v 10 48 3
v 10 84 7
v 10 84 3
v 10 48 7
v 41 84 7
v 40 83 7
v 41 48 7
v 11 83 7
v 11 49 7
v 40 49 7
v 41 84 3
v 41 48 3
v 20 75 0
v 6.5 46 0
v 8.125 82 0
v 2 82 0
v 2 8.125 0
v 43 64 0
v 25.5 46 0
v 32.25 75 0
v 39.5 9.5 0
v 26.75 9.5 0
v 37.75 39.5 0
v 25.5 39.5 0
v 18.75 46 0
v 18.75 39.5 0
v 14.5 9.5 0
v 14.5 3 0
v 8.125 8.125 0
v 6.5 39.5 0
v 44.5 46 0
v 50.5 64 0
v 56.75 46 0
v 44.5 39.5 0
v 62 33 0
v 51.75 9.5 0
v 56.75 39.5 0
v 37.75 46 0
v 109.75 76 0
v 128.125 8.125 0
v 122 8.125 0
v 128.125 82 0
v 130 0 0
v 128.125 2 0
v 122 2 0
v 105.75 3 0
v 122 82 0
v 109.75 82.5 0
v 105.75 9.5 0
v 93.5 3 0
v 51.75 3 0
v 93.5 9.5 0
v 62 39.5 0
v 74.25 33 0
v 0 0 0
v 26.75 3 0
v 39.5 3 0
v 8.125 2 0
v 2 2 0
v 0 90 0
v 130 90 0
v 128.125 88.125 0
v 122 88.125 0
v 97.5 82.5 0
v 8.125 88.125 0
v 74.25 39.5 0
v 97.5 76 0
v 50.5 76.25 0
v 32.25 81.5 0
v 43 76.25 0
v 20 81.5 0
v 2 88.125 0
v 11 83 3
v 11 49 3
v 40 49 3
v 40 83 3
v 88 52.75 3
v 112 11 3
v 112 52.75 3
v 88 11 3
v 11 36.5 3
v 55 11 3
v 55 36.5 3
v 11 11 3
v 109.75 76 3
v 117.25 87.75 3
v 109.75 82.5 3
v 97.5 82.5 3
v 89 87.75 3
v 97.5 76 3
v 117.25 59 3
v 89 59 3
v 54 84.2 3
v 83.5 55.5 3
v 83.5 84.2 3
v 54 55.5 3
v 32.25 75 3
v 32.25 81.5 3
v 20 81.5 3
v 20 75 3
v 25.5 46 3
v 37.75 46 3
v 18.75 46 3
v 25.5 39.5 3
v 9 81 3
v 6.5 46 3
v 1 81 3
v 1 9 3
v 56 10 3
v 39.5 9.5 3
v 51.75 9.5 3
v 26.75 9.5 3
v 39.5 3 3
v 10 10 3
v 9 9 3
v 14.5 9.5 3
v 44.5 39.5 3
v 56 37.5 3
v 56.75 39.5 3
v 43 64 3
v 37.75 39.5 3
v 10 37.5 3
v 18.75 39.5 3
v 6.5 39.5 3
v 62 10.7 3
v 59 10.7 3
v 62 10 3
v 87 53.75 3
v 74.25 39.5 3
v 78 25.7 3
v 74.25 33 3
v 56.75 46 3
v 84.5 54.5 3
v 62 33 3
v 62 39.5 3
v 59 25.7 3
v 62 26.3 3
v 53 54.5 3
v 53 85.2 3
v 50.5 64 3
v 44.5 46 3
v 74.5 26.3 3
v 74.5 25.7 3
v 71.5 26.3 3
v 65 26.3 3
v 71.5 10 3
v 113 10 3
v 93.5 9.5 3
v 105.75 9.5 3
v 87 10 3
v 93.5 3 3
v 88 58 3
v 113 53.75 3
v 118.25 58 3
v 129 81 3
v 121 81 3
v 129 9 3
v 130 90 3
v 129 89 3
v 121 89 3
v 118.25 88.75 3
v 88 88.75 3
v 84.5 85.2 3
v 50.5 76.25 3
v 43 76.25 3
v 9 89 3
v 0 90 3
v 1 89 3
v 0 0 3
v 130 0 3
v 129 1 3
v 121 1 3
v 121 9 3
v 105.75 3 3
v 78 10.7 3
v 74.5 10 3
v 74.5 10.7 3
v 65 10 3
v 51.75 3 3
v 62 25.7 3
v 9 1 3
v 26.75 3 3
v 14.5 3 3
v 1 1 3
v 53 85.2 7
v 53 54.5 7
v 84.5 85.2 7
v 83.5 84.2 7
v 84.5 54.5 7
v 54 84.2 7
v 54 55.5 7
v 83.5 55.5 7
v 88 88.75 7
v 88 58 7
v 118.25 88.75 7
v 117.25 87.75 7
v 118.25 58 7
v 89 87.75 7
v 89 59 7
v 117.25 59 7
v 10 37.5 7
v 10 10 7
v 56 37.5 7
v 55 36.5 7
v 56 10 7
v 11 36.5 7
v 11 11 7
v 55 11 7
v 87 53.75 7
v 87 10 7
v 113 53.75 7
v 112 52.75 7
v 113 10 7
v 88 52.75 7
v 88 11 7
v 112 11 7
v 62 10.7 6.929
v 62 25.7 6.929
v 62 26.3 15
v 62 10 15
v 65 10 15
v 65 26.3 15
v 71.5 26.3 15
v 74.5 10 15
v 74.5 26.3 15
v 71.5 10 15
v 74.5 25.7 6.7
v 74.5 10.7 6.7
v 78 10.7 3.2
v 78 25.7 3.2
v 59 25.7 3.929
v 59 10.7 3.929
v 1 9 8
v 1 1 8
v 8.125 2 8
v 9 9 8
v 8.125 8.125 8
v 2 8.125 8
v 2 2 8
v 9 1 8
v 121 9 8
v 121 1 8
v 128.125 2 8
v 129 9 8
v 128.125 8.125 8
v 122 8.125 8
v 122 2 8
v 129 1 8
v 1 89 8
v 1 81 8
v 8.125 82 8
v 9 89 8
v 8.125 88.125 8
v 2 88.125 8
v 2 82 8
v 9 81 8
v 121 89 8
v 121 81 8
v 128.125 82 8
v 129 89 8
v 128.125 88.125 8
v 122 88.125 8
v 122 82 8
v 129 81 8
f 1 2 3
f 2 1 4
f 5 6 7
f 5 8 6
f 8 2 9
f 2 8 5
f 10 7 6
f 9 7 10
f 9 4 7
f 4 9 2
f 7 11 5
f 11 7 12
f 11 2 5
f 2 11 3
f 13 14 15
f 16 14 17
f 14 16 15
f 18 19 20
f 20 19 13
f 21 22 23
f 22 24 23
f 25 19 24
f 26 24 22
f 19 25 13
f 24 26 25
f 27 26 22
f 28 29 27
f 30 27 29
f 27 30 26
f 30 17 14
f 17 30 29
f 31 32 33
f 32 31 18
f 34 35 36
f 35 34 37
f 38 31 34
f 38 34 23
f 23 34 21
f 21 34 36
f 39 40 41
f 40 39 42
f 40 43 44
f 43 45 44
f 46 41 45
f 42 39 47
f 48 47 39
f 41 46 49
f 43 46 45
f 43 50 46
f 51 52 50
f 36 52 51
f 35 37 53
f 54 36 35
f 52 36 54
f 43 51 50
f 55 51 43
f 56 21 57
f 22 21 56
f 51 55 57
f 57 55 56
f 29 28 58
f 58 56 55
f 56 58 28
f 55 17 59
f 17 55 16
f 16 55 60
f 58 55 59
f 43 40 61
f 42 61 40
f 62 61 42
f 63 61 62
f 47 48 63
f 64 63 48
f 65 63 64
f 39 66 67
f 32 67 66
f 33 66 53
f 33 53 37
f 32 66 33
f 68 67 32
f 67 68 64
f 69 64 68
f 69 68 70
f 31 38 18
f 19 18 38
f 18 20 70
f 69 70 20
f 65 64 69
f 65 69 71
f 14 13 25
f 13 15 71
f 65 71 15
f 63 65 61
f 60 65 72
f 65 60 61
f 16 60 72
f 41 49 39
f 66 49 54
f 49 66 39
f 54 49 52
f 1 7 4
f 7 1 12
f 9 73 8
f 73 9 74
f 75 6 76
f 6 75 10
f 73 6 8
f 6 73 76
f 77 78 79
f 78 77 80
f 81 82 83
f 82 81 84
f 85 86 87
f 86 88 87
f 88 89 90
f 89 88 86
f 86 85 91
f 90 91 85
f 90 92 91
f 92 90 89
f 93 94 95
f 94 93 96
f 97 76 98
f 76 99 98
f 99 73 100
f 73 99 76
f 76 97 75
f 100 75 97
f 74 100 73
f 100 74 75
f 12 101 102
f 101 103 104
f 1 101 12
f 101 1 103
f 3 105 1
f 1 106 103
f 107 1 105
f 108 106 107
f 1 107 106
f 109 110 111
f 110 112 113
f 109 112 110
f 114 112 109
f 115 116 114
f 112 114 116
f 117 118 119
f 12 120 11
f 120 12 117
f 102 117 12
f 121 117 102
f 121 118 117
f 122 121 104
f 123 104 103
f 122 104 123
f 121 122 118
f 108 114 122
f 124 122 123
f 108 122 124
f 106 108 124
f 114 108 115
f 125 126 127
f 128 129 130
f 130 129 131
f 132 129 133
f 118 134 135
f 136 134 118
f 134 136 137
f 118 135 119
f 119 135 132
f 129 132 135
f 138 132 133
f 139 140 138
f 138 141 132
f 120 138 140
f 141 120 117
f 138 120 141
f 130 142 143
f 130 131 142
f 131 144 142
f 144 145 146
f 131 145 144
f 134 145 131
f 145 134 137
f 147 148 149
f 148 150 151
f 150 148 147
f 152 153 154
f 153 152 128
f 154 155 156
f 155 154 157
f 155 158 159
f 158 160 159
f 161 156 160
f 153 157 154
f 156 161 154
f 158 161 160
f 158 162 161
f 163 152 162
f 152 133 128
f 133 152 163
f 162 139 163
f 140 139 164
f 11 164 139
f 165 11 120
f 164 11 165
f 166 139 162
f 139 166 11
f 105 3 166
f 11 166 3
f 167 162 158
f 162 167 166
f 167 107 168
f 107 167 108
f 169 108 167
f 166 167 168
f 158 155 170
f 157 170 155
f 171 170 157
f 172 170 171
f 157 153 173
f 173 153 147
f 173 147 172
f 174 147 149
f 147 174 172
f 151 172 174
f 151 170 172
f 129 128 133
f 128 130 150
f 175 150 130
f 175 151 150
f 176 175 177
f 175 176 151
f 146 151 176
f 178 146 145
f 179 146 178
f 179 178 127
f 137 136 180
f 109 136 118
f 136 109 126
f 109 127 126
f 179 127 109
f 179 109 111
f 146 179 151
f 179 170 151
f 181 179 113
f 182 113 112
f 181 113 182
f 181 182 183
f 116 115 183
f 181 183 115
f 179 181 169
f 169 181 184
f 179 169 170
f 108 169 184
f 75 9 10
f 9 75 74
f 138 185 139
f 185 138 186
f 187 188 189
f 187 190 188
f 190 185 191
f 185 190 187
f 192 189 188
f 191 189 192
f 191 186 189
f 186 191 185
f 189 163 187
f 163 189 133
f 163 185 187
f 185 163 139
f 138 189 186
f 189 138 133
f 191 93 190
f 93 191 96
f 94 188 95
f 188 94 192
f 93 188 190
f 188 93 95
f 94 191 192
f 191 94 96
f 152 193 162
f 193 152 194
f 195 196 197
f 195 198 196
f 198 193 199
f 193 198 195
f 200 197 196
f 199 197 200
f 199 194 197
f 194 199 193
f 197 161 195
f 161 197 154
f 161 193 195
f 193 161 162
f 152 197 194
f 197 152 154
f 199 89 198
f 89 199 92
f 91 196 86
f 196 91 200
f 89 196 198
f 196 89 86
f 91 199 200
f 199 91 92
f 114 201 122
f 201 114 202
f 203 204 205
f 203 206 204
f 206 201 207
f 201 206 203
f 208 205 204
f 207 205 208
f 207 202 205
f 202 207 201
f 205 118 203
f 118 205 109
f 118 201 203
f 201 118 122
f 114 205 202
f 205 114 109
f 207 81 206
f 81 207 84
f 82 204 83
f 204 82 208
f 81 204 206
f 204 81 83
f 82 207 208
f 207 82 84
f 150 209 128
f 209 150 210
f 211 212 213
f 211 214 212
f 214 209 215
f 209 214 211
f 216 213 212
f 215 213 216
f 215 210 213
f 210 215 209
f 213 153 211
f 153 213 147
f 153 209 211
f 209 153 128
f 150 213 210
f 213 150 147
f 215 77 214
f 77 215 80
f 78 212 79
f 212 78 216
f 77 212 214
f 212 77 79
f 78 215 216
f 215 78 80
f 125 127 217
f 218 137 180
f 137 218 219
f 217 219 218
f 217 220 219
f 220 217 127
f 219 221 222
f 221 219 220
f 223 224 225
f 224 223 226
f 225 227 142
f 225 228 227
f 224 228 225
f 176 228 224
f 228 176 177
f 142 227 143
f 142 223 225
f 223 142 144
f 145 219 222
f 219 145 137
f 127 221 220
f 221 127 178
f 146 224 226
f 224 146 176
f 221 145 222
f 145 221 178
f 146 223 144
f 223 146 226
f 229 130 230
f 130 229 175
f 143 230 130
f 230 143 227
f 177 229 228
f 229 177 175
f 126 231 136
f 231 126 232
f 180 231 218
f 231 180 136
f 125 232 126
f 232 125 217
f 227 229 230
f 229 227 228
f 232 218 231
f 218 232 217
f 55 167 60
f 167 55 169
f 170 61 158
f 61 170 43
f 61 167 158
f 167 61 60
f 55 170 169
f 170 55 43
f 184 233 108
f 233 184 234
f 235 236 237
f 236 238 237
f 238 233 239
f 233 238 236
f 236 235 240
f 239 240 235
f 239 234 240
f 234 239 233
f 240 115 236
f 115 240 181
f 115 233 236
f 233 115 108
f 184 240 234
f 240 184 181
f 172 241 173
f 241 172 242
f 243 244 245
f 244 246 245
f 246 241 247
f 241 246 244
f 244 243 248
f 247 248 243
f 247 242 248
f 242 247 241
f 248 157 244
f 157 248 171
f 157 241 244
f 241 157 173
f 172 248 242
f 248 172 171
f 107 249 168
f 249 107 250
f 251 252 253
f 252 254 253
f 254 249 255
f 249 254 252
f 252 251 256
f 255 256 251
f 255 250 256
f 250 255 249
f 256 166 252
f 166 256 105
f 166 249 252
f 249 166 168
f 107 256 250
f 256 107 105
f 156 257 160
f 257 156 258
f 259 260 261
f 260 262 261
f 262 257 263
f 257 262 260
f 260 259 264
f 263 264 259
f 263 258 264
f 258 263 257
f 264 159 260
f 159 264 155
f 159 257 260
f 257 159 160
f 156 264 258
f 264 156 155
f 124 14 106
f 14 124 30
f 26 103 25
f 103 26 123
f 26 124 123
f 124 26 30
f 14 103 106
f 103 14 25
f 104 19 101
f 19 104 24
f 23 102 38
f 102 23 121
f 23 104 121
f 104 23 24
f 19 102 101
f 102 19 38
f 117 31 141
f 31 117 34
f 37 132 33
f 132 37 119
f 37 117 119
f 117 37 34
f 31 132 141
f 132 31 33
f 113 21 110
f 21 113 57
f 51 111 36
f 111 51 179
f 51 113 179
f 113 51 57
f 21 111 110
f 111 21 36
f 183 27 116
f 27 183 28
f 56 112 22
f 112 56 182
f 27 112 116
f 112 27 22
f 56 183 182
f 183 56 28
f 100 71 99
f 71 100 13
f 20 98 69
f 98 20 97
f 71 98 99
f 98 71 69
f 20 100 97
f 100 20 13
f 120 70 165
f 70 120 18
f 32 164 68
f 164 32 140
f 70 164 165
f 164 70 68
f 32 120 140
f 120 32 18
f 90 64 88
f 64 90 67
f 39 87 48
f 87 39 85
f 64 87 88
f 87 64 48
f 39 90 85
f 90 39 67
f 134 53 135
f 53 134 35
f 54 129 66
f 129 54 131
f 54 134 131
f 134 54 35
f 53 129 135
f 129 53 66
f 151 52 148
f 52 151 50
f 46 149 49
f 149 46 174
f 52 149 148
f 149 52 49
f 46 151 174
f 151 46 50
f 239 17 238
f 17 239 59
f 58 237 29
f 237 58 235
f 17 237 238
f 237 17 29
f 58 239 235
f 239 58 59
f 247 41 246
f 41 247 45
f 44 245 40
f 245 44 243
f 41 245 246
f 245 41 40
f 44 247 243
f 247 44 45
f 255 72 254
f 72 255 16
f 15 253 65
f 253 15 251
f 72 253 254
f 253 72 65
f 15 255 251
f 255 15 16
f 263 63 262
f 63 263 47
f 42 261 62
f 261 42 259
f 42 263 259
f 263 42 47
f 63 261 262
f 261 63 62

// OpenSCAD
//
// Main Plante for PiSmartPlant
// 011217-01
//
// main base 190 x 86
MaxX = 130;
MaxY = 90;


module LEDBox()
{
    
   // grove holder Box
   
    
    difference()
    {
        cube([12.5,16.3,15]); 
        
        translate([3,-5,0])
        cube([6.5,22.6,20]); 
        
    }
    
    
difference()
    {
    union()
        {
        translate([11,0.7,2])
        #cube([5,15,5]);
    
        translate([-3,0.7,2])
        cube([5,15,5]);
       }

        translate([16,0.6,3.2])
        rotate([0,-45,0])
        #cube([5,16,6]);
    

        translate([-9,0.6,5])
        rotate([0,45,0])
        cube([5,17,8.0]);
}
    
}
module fitbox(x, y)

{
    
    difference()
    {
        cube([x+2,y+2,7]);
        
        translate([1,1,3])
        cube([x,y,6]);
        
    }
    
    
}


module PlaceFitBox(x,y,xloc,yloc)
{
    translate([xloc,yloc])
fitbox(x, y);
    
}

$fn =400;

module PlaceGroveHole(xloc, yloc)
{
    translate([xloc,yloc,-20])
    cube([12.25,6.5,50]);

}

module VPlaceGroveHole(xloc, yloc)
{
    translate([xloc,yloc,-20])
    cube([7.5,12.25,50]);

}

difference()
{


    
union()
{
    // start of base
cube ([MaxX,MaxY,3]);

translate([-25,0,0])
union()
    {
// Place block

// OLED
translate([25,0,0])
PlaceFitBox(29,34,10,MaxY-42);

// TH
PlaceFitBox(29.5,28.7,78,MaxY-42+6.5);
   

// Sun
    translate([-20,0,0])
PlaceFitBox(28.5-.25,28+1-.25,78+40+10+5,MaxY-42+10);




// I2C Mux  
translate([-43,0,0])
PlaceFitBox(44,25.5 ,10+34+24+10,10);


// Air Quality Sensor
translate([-20,0,0])
 PlaceFitBox(24.25-0.25,42-0.25,10+34+24+10+44+10,10);
 
 // LED Strip
 
 translate([87,10,0])
 LEDBox();
 
 // leg boxes
 
 
 
}

// leg boxes
translate([1,1,0])
cube([8,8,8]);


translate([MaxX-9,1,0])
cube([8,8,8]);

translate([1,MaxY-9,0])
cube([8,8,8]);

translate([MaxX-9,MaxY-9,0])
cube([8,8,8]);

}
translate([-25,0,0])
union()
{
// Grove Holes

// OLED
translate([25,0,0])
PlaceGroveHole(10+29/2-4.5, MaxY-10-5);
// TH

VPlaceGroveHole(68, MaxY-42+16);
// Sun
translate([-18,-4,0])
PlaceGroveHole(78+40+10+12+0.5, MaxY-10);


// I2C Mux (5)
translate([-43,0,0])

union()
{
 translate([-8,0,0])   
PlaceGroveHole(10+12+10+24+30-4.5+1, 10+20-4.5+6+6+2);
    
translate([11,0,0])
PlaceGroveHole(10+12+10+24+30-4.5+1, 10+20-4.5+6+6+2);
translate([30,0,0])
PlaceGroveHole(10+12+10+24+30-4.5+1, 10+20-4.5+6+6+2);
PlaceGroveHole(10+12+10+24+55-4.5+1, 4-1);
PlaceGroveHole(10+12+10+24+30-4.5+1, 4-1);
}

// Pixel Strip

translate([0,0,0])
#PlaceGroveHole(87,MaxY-67+10);


// Air Q
translate([-20,0,0])
PlaceGroveHole(10+12+10+24+72+16-5.5, 4-1);


}
// leg holes


HoleSize = 6.125;

translate([2,2,-1])
#cube([HoleSize,HoleSize,20]);

translate([MaxX-8,2,-1])
cube([HoleSize,HoleSize,20]);

translate([2,MaxY-8,-1])
cube([HoleSize,HoleSize,20]);

translate([MaxX-8,MaxY-8,-1])
cube([HoleSize,HoleSize,20]);

/*
// for test cubing

// block Sunlight

#translate([-115,40,-10])
cube([200,60,100]);

#translate([120,40,-10])
cube([200,60,100]);
// block 2

#translate([0,-10,-10])
cube([200,65,100]);

*/

// block LED Strip
/*
#translate([-150,-10,-10])
cube([200,160,100]);

#translate([90,-10,-10])
cube([200,160,100]);
// block 2

#translate([0,50,-10])
cube([200,65,100]);
*/
}
